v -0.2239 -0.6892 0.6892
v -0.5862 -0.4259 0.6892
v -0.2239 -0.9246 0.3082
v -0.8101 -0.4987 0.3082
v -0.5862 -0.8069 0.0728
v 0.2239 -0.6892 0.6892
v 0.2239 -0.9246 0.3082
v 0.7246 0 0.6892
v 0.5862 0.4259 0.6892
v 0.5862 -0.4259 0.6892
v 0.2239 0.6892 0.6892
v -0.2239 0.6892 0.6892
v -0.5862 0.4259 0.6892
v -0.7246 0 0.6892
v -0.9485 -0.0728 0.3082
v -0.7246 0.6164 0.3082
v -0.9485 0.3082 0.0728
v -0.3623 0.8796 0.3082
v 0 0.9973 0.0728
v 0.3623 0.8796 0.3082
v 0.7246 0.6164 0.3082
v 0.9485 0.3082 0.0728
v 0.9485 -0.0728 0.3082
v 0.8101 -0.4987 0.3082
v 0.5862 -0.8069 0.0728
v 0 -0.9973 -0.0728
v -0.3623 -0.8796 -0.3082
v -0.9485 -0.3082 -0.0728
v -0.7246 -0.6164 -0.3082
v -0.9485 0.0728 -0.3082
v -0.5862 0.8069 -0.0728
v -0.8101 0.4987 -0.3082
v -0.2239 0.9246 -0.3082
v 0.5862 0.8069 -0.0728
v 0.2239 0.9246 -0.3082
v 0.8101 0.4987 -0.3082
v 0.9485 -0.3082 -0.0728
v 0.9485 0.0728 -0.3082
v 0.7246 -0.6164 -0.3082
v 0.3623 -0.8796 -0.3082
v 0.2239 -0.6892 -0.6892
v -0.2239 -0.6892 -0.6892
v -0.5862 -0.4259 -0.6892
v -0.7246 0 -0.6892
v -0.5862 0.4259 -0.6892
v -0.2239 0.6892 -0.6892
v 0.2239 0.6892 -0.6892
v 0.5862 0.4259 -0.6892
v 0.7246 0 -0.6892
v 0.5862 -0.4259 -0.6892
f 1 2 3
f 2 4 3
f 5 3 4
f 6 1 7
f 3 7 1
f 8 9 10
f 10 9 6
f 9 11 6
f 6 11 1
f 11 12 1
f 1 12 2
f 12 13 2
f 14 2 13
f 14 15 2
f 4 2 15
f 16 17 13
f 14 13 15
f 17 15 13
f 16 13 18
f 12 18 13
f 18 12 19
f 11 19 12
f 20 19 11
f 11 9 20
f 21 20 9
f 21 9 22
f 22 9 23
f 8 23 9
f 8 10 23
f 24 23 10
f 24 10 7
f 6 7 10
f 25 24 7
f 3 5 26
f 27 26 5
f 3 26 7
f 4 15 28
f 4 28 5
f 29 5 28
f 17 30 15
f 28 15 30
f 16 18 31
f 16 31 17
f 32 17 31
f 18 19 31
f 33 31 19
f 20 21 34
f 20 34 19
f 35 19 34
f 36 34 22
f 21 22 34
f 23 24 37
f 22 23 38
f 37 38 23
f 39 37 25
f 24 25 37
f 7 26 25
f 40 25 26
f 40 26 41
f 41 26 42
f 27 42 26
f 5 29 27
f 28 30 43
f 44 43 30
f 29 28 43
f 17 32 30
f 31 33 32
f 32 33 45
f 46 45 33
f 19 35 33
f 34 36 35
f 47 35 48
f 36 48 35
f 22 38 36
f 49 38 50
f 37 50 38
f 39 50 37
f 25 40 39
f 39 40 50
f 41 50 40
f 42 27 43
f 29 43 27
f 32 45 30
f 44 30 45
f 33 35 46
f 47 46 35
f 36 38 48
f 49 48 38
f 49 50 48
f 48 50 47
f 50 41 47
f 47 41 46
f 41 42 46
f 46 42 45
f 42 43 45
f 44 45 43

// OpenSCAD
polyhedron( points = [[-0.223918979731715, -0.689151756892442, 0.689151756571381], [-0.586227499205583, -0.425919209196254, 0.689151756571381], [-0.724617039138734, -2.18526068262738e-10, 0.689151756571381], [-0.586227499090849, 0.425919208721918, 0.689151756571381], [-0.223918979669834, 0.689151756280295, 0.689151756571381], [0.223918979126785, 0.689151756240083, 0.689151756571381], [0.586227498500526, 0.42591920861664, 0.689151756571381], [0.724617038471922, -3.48658824346372e-10, 0.689151756571381], [0.58622749846228, -0.425919209301533, 0.689151756571381], [0.223918979064903, -0.689151756892442, 0.689151756571381], [-0.223918979711609, -0.92459410524135, 0.308198034930872], [-0.810146478589606, -0.498674896161386, 0.308198034922043], [-0.948536018483369, -0.0727556869535419, 0.308198034872676], [-0.724617038978399, 0.616396069579126, 0.308198034907331], [-0.362308519624126, 0.879628617064662, 0.308198034872676], [0.362308519172652, 0.879628616982264, 0.308198034907332], [0.724617038456494, 0.61639606939979, 0.308198034872676], [0.948536017804739, -0.0727556871838023, 0.308198034907331], [0.810146477806275, -0.498674896038517, 0.308198034872676], [0.223918979015398, -0.924594105225894, 0.308198034955881], [-4.44586780104862e-10, -0.997349791418255, -0.0727556868868044], [-0.586227499236796, -0.806872931140729, 0.0727556868629291], [-0.948536017732224, -0.308198034536171, -0.0727556871599721], [-0.948536018387546, 0.308198034736325, 0.0727556867230558], [-0.586227499481869, 0.806872930688853, -0.0727556865566269], [-1.78703131528925e-10, 0.997349791059091, 0.0727556867230558], [0.586227498685268, 0.806872930783154, -0.0727556865566269], [0.948536017816342, 0.308198034442064, 0.0727556867230558], [0.948536018388496, -0.308198035244376, -0.0727556865566269], [0.586227498346724, -0.806872930923807, 0.0727556867230558], [0.362308518793087, -0.879628616654075, -0.308198034958553], [-0.362308519956199, -0.879628617322045, -0.308198034770519], [-0.724617038437017, -0.61639606943623, -0.308198034927719], [-0.948536015530622, 0.0727556873114111, -0.30819803465516], [-0.810146478894109, 0.498674895841792, -0.30819803488697], [-0.22391898050856, 0.924594105623146, -0.308198034986744], [0.223918979328908, 0.924594104861607, -0.30819803488697], [0.8101464787931, 0.498674896564876, -0.308198034986744], [0.948536018400099, 0.0727556863867557, -0.30819803488697], [0.724617039863332, -0.616396070612532, -0.308198034986744], [-0.223918980229161, -0.689151755805724, -0.689151756155762], [-0.586227496262291, -0.425919208551861, -0.689151755735528], [-0.724617034950424, 8.30395519334311e-10, -0.689151755531113], [-0.586227499853761, 0.425919210007473, -0.689151757005543], [-0.22391898080027, 0.689151758071705, -0.68915175703124], [0.223918980113677, 0.689151757362925, -0.689151757005548], [0.586227499854944, 0.425919210245342, -0.689151757031245], [0.724617039844765, -9.40270656401878e-10, -0.689151757005543], [0.586227500429793, -0.425919210086363, -0.68915175703124], [0.223918978567457, -0.689151755374911, -0.689151756307937]], faces = [[0, 1, 11, 21, 10], [0, 10, 19, 9], [0, 9, 8, 7, 6, 5, 4, 3, 2, 1], [1, 2, 12, 11], [2, 3, 13, 23, 12], [3, 4, 14, 13], [4, 5, 15, 25, 14], [5, 6, 16, 15], [6, 7, 17, 27, 16], [7, 8, 18, 17], [8, 9, 19, 29, 18], [10, 21, 31, 20], [10, 20, 19], [11, 12, 22], [11, 22, 32, 21], [12, 23, 33, 22], [13, 14, 24], [13, 24, 34, 23], [14, 25, 35, 24], [15, 16, 26], [15, 26, 36, 25], [16, 27, 37, 26], [17, 18, 28], [17, 28, 38, 27], [18, 29, 39, 28], [19, 20, 30, 29], [20, 31, 40, 49, 30], [21, 32, 31], [22, 33, 42, 41, 32], [23, 34, 33], [24, 35, 44, 43, 34], [25, 36, 35], [26, 37, 46, 45, 36], [27, 38, 37], [28, 39, 48, 47, 38], [29, 30, 39], [30, 49, 48, 39], [31, 32, 41, 40], [33, 34, 43, 42], [35, 36, 45, 44], [37, 38, 47, 46], [40, 41, 42, 43, 44, 45, 46, 47, 48, 49]]);
